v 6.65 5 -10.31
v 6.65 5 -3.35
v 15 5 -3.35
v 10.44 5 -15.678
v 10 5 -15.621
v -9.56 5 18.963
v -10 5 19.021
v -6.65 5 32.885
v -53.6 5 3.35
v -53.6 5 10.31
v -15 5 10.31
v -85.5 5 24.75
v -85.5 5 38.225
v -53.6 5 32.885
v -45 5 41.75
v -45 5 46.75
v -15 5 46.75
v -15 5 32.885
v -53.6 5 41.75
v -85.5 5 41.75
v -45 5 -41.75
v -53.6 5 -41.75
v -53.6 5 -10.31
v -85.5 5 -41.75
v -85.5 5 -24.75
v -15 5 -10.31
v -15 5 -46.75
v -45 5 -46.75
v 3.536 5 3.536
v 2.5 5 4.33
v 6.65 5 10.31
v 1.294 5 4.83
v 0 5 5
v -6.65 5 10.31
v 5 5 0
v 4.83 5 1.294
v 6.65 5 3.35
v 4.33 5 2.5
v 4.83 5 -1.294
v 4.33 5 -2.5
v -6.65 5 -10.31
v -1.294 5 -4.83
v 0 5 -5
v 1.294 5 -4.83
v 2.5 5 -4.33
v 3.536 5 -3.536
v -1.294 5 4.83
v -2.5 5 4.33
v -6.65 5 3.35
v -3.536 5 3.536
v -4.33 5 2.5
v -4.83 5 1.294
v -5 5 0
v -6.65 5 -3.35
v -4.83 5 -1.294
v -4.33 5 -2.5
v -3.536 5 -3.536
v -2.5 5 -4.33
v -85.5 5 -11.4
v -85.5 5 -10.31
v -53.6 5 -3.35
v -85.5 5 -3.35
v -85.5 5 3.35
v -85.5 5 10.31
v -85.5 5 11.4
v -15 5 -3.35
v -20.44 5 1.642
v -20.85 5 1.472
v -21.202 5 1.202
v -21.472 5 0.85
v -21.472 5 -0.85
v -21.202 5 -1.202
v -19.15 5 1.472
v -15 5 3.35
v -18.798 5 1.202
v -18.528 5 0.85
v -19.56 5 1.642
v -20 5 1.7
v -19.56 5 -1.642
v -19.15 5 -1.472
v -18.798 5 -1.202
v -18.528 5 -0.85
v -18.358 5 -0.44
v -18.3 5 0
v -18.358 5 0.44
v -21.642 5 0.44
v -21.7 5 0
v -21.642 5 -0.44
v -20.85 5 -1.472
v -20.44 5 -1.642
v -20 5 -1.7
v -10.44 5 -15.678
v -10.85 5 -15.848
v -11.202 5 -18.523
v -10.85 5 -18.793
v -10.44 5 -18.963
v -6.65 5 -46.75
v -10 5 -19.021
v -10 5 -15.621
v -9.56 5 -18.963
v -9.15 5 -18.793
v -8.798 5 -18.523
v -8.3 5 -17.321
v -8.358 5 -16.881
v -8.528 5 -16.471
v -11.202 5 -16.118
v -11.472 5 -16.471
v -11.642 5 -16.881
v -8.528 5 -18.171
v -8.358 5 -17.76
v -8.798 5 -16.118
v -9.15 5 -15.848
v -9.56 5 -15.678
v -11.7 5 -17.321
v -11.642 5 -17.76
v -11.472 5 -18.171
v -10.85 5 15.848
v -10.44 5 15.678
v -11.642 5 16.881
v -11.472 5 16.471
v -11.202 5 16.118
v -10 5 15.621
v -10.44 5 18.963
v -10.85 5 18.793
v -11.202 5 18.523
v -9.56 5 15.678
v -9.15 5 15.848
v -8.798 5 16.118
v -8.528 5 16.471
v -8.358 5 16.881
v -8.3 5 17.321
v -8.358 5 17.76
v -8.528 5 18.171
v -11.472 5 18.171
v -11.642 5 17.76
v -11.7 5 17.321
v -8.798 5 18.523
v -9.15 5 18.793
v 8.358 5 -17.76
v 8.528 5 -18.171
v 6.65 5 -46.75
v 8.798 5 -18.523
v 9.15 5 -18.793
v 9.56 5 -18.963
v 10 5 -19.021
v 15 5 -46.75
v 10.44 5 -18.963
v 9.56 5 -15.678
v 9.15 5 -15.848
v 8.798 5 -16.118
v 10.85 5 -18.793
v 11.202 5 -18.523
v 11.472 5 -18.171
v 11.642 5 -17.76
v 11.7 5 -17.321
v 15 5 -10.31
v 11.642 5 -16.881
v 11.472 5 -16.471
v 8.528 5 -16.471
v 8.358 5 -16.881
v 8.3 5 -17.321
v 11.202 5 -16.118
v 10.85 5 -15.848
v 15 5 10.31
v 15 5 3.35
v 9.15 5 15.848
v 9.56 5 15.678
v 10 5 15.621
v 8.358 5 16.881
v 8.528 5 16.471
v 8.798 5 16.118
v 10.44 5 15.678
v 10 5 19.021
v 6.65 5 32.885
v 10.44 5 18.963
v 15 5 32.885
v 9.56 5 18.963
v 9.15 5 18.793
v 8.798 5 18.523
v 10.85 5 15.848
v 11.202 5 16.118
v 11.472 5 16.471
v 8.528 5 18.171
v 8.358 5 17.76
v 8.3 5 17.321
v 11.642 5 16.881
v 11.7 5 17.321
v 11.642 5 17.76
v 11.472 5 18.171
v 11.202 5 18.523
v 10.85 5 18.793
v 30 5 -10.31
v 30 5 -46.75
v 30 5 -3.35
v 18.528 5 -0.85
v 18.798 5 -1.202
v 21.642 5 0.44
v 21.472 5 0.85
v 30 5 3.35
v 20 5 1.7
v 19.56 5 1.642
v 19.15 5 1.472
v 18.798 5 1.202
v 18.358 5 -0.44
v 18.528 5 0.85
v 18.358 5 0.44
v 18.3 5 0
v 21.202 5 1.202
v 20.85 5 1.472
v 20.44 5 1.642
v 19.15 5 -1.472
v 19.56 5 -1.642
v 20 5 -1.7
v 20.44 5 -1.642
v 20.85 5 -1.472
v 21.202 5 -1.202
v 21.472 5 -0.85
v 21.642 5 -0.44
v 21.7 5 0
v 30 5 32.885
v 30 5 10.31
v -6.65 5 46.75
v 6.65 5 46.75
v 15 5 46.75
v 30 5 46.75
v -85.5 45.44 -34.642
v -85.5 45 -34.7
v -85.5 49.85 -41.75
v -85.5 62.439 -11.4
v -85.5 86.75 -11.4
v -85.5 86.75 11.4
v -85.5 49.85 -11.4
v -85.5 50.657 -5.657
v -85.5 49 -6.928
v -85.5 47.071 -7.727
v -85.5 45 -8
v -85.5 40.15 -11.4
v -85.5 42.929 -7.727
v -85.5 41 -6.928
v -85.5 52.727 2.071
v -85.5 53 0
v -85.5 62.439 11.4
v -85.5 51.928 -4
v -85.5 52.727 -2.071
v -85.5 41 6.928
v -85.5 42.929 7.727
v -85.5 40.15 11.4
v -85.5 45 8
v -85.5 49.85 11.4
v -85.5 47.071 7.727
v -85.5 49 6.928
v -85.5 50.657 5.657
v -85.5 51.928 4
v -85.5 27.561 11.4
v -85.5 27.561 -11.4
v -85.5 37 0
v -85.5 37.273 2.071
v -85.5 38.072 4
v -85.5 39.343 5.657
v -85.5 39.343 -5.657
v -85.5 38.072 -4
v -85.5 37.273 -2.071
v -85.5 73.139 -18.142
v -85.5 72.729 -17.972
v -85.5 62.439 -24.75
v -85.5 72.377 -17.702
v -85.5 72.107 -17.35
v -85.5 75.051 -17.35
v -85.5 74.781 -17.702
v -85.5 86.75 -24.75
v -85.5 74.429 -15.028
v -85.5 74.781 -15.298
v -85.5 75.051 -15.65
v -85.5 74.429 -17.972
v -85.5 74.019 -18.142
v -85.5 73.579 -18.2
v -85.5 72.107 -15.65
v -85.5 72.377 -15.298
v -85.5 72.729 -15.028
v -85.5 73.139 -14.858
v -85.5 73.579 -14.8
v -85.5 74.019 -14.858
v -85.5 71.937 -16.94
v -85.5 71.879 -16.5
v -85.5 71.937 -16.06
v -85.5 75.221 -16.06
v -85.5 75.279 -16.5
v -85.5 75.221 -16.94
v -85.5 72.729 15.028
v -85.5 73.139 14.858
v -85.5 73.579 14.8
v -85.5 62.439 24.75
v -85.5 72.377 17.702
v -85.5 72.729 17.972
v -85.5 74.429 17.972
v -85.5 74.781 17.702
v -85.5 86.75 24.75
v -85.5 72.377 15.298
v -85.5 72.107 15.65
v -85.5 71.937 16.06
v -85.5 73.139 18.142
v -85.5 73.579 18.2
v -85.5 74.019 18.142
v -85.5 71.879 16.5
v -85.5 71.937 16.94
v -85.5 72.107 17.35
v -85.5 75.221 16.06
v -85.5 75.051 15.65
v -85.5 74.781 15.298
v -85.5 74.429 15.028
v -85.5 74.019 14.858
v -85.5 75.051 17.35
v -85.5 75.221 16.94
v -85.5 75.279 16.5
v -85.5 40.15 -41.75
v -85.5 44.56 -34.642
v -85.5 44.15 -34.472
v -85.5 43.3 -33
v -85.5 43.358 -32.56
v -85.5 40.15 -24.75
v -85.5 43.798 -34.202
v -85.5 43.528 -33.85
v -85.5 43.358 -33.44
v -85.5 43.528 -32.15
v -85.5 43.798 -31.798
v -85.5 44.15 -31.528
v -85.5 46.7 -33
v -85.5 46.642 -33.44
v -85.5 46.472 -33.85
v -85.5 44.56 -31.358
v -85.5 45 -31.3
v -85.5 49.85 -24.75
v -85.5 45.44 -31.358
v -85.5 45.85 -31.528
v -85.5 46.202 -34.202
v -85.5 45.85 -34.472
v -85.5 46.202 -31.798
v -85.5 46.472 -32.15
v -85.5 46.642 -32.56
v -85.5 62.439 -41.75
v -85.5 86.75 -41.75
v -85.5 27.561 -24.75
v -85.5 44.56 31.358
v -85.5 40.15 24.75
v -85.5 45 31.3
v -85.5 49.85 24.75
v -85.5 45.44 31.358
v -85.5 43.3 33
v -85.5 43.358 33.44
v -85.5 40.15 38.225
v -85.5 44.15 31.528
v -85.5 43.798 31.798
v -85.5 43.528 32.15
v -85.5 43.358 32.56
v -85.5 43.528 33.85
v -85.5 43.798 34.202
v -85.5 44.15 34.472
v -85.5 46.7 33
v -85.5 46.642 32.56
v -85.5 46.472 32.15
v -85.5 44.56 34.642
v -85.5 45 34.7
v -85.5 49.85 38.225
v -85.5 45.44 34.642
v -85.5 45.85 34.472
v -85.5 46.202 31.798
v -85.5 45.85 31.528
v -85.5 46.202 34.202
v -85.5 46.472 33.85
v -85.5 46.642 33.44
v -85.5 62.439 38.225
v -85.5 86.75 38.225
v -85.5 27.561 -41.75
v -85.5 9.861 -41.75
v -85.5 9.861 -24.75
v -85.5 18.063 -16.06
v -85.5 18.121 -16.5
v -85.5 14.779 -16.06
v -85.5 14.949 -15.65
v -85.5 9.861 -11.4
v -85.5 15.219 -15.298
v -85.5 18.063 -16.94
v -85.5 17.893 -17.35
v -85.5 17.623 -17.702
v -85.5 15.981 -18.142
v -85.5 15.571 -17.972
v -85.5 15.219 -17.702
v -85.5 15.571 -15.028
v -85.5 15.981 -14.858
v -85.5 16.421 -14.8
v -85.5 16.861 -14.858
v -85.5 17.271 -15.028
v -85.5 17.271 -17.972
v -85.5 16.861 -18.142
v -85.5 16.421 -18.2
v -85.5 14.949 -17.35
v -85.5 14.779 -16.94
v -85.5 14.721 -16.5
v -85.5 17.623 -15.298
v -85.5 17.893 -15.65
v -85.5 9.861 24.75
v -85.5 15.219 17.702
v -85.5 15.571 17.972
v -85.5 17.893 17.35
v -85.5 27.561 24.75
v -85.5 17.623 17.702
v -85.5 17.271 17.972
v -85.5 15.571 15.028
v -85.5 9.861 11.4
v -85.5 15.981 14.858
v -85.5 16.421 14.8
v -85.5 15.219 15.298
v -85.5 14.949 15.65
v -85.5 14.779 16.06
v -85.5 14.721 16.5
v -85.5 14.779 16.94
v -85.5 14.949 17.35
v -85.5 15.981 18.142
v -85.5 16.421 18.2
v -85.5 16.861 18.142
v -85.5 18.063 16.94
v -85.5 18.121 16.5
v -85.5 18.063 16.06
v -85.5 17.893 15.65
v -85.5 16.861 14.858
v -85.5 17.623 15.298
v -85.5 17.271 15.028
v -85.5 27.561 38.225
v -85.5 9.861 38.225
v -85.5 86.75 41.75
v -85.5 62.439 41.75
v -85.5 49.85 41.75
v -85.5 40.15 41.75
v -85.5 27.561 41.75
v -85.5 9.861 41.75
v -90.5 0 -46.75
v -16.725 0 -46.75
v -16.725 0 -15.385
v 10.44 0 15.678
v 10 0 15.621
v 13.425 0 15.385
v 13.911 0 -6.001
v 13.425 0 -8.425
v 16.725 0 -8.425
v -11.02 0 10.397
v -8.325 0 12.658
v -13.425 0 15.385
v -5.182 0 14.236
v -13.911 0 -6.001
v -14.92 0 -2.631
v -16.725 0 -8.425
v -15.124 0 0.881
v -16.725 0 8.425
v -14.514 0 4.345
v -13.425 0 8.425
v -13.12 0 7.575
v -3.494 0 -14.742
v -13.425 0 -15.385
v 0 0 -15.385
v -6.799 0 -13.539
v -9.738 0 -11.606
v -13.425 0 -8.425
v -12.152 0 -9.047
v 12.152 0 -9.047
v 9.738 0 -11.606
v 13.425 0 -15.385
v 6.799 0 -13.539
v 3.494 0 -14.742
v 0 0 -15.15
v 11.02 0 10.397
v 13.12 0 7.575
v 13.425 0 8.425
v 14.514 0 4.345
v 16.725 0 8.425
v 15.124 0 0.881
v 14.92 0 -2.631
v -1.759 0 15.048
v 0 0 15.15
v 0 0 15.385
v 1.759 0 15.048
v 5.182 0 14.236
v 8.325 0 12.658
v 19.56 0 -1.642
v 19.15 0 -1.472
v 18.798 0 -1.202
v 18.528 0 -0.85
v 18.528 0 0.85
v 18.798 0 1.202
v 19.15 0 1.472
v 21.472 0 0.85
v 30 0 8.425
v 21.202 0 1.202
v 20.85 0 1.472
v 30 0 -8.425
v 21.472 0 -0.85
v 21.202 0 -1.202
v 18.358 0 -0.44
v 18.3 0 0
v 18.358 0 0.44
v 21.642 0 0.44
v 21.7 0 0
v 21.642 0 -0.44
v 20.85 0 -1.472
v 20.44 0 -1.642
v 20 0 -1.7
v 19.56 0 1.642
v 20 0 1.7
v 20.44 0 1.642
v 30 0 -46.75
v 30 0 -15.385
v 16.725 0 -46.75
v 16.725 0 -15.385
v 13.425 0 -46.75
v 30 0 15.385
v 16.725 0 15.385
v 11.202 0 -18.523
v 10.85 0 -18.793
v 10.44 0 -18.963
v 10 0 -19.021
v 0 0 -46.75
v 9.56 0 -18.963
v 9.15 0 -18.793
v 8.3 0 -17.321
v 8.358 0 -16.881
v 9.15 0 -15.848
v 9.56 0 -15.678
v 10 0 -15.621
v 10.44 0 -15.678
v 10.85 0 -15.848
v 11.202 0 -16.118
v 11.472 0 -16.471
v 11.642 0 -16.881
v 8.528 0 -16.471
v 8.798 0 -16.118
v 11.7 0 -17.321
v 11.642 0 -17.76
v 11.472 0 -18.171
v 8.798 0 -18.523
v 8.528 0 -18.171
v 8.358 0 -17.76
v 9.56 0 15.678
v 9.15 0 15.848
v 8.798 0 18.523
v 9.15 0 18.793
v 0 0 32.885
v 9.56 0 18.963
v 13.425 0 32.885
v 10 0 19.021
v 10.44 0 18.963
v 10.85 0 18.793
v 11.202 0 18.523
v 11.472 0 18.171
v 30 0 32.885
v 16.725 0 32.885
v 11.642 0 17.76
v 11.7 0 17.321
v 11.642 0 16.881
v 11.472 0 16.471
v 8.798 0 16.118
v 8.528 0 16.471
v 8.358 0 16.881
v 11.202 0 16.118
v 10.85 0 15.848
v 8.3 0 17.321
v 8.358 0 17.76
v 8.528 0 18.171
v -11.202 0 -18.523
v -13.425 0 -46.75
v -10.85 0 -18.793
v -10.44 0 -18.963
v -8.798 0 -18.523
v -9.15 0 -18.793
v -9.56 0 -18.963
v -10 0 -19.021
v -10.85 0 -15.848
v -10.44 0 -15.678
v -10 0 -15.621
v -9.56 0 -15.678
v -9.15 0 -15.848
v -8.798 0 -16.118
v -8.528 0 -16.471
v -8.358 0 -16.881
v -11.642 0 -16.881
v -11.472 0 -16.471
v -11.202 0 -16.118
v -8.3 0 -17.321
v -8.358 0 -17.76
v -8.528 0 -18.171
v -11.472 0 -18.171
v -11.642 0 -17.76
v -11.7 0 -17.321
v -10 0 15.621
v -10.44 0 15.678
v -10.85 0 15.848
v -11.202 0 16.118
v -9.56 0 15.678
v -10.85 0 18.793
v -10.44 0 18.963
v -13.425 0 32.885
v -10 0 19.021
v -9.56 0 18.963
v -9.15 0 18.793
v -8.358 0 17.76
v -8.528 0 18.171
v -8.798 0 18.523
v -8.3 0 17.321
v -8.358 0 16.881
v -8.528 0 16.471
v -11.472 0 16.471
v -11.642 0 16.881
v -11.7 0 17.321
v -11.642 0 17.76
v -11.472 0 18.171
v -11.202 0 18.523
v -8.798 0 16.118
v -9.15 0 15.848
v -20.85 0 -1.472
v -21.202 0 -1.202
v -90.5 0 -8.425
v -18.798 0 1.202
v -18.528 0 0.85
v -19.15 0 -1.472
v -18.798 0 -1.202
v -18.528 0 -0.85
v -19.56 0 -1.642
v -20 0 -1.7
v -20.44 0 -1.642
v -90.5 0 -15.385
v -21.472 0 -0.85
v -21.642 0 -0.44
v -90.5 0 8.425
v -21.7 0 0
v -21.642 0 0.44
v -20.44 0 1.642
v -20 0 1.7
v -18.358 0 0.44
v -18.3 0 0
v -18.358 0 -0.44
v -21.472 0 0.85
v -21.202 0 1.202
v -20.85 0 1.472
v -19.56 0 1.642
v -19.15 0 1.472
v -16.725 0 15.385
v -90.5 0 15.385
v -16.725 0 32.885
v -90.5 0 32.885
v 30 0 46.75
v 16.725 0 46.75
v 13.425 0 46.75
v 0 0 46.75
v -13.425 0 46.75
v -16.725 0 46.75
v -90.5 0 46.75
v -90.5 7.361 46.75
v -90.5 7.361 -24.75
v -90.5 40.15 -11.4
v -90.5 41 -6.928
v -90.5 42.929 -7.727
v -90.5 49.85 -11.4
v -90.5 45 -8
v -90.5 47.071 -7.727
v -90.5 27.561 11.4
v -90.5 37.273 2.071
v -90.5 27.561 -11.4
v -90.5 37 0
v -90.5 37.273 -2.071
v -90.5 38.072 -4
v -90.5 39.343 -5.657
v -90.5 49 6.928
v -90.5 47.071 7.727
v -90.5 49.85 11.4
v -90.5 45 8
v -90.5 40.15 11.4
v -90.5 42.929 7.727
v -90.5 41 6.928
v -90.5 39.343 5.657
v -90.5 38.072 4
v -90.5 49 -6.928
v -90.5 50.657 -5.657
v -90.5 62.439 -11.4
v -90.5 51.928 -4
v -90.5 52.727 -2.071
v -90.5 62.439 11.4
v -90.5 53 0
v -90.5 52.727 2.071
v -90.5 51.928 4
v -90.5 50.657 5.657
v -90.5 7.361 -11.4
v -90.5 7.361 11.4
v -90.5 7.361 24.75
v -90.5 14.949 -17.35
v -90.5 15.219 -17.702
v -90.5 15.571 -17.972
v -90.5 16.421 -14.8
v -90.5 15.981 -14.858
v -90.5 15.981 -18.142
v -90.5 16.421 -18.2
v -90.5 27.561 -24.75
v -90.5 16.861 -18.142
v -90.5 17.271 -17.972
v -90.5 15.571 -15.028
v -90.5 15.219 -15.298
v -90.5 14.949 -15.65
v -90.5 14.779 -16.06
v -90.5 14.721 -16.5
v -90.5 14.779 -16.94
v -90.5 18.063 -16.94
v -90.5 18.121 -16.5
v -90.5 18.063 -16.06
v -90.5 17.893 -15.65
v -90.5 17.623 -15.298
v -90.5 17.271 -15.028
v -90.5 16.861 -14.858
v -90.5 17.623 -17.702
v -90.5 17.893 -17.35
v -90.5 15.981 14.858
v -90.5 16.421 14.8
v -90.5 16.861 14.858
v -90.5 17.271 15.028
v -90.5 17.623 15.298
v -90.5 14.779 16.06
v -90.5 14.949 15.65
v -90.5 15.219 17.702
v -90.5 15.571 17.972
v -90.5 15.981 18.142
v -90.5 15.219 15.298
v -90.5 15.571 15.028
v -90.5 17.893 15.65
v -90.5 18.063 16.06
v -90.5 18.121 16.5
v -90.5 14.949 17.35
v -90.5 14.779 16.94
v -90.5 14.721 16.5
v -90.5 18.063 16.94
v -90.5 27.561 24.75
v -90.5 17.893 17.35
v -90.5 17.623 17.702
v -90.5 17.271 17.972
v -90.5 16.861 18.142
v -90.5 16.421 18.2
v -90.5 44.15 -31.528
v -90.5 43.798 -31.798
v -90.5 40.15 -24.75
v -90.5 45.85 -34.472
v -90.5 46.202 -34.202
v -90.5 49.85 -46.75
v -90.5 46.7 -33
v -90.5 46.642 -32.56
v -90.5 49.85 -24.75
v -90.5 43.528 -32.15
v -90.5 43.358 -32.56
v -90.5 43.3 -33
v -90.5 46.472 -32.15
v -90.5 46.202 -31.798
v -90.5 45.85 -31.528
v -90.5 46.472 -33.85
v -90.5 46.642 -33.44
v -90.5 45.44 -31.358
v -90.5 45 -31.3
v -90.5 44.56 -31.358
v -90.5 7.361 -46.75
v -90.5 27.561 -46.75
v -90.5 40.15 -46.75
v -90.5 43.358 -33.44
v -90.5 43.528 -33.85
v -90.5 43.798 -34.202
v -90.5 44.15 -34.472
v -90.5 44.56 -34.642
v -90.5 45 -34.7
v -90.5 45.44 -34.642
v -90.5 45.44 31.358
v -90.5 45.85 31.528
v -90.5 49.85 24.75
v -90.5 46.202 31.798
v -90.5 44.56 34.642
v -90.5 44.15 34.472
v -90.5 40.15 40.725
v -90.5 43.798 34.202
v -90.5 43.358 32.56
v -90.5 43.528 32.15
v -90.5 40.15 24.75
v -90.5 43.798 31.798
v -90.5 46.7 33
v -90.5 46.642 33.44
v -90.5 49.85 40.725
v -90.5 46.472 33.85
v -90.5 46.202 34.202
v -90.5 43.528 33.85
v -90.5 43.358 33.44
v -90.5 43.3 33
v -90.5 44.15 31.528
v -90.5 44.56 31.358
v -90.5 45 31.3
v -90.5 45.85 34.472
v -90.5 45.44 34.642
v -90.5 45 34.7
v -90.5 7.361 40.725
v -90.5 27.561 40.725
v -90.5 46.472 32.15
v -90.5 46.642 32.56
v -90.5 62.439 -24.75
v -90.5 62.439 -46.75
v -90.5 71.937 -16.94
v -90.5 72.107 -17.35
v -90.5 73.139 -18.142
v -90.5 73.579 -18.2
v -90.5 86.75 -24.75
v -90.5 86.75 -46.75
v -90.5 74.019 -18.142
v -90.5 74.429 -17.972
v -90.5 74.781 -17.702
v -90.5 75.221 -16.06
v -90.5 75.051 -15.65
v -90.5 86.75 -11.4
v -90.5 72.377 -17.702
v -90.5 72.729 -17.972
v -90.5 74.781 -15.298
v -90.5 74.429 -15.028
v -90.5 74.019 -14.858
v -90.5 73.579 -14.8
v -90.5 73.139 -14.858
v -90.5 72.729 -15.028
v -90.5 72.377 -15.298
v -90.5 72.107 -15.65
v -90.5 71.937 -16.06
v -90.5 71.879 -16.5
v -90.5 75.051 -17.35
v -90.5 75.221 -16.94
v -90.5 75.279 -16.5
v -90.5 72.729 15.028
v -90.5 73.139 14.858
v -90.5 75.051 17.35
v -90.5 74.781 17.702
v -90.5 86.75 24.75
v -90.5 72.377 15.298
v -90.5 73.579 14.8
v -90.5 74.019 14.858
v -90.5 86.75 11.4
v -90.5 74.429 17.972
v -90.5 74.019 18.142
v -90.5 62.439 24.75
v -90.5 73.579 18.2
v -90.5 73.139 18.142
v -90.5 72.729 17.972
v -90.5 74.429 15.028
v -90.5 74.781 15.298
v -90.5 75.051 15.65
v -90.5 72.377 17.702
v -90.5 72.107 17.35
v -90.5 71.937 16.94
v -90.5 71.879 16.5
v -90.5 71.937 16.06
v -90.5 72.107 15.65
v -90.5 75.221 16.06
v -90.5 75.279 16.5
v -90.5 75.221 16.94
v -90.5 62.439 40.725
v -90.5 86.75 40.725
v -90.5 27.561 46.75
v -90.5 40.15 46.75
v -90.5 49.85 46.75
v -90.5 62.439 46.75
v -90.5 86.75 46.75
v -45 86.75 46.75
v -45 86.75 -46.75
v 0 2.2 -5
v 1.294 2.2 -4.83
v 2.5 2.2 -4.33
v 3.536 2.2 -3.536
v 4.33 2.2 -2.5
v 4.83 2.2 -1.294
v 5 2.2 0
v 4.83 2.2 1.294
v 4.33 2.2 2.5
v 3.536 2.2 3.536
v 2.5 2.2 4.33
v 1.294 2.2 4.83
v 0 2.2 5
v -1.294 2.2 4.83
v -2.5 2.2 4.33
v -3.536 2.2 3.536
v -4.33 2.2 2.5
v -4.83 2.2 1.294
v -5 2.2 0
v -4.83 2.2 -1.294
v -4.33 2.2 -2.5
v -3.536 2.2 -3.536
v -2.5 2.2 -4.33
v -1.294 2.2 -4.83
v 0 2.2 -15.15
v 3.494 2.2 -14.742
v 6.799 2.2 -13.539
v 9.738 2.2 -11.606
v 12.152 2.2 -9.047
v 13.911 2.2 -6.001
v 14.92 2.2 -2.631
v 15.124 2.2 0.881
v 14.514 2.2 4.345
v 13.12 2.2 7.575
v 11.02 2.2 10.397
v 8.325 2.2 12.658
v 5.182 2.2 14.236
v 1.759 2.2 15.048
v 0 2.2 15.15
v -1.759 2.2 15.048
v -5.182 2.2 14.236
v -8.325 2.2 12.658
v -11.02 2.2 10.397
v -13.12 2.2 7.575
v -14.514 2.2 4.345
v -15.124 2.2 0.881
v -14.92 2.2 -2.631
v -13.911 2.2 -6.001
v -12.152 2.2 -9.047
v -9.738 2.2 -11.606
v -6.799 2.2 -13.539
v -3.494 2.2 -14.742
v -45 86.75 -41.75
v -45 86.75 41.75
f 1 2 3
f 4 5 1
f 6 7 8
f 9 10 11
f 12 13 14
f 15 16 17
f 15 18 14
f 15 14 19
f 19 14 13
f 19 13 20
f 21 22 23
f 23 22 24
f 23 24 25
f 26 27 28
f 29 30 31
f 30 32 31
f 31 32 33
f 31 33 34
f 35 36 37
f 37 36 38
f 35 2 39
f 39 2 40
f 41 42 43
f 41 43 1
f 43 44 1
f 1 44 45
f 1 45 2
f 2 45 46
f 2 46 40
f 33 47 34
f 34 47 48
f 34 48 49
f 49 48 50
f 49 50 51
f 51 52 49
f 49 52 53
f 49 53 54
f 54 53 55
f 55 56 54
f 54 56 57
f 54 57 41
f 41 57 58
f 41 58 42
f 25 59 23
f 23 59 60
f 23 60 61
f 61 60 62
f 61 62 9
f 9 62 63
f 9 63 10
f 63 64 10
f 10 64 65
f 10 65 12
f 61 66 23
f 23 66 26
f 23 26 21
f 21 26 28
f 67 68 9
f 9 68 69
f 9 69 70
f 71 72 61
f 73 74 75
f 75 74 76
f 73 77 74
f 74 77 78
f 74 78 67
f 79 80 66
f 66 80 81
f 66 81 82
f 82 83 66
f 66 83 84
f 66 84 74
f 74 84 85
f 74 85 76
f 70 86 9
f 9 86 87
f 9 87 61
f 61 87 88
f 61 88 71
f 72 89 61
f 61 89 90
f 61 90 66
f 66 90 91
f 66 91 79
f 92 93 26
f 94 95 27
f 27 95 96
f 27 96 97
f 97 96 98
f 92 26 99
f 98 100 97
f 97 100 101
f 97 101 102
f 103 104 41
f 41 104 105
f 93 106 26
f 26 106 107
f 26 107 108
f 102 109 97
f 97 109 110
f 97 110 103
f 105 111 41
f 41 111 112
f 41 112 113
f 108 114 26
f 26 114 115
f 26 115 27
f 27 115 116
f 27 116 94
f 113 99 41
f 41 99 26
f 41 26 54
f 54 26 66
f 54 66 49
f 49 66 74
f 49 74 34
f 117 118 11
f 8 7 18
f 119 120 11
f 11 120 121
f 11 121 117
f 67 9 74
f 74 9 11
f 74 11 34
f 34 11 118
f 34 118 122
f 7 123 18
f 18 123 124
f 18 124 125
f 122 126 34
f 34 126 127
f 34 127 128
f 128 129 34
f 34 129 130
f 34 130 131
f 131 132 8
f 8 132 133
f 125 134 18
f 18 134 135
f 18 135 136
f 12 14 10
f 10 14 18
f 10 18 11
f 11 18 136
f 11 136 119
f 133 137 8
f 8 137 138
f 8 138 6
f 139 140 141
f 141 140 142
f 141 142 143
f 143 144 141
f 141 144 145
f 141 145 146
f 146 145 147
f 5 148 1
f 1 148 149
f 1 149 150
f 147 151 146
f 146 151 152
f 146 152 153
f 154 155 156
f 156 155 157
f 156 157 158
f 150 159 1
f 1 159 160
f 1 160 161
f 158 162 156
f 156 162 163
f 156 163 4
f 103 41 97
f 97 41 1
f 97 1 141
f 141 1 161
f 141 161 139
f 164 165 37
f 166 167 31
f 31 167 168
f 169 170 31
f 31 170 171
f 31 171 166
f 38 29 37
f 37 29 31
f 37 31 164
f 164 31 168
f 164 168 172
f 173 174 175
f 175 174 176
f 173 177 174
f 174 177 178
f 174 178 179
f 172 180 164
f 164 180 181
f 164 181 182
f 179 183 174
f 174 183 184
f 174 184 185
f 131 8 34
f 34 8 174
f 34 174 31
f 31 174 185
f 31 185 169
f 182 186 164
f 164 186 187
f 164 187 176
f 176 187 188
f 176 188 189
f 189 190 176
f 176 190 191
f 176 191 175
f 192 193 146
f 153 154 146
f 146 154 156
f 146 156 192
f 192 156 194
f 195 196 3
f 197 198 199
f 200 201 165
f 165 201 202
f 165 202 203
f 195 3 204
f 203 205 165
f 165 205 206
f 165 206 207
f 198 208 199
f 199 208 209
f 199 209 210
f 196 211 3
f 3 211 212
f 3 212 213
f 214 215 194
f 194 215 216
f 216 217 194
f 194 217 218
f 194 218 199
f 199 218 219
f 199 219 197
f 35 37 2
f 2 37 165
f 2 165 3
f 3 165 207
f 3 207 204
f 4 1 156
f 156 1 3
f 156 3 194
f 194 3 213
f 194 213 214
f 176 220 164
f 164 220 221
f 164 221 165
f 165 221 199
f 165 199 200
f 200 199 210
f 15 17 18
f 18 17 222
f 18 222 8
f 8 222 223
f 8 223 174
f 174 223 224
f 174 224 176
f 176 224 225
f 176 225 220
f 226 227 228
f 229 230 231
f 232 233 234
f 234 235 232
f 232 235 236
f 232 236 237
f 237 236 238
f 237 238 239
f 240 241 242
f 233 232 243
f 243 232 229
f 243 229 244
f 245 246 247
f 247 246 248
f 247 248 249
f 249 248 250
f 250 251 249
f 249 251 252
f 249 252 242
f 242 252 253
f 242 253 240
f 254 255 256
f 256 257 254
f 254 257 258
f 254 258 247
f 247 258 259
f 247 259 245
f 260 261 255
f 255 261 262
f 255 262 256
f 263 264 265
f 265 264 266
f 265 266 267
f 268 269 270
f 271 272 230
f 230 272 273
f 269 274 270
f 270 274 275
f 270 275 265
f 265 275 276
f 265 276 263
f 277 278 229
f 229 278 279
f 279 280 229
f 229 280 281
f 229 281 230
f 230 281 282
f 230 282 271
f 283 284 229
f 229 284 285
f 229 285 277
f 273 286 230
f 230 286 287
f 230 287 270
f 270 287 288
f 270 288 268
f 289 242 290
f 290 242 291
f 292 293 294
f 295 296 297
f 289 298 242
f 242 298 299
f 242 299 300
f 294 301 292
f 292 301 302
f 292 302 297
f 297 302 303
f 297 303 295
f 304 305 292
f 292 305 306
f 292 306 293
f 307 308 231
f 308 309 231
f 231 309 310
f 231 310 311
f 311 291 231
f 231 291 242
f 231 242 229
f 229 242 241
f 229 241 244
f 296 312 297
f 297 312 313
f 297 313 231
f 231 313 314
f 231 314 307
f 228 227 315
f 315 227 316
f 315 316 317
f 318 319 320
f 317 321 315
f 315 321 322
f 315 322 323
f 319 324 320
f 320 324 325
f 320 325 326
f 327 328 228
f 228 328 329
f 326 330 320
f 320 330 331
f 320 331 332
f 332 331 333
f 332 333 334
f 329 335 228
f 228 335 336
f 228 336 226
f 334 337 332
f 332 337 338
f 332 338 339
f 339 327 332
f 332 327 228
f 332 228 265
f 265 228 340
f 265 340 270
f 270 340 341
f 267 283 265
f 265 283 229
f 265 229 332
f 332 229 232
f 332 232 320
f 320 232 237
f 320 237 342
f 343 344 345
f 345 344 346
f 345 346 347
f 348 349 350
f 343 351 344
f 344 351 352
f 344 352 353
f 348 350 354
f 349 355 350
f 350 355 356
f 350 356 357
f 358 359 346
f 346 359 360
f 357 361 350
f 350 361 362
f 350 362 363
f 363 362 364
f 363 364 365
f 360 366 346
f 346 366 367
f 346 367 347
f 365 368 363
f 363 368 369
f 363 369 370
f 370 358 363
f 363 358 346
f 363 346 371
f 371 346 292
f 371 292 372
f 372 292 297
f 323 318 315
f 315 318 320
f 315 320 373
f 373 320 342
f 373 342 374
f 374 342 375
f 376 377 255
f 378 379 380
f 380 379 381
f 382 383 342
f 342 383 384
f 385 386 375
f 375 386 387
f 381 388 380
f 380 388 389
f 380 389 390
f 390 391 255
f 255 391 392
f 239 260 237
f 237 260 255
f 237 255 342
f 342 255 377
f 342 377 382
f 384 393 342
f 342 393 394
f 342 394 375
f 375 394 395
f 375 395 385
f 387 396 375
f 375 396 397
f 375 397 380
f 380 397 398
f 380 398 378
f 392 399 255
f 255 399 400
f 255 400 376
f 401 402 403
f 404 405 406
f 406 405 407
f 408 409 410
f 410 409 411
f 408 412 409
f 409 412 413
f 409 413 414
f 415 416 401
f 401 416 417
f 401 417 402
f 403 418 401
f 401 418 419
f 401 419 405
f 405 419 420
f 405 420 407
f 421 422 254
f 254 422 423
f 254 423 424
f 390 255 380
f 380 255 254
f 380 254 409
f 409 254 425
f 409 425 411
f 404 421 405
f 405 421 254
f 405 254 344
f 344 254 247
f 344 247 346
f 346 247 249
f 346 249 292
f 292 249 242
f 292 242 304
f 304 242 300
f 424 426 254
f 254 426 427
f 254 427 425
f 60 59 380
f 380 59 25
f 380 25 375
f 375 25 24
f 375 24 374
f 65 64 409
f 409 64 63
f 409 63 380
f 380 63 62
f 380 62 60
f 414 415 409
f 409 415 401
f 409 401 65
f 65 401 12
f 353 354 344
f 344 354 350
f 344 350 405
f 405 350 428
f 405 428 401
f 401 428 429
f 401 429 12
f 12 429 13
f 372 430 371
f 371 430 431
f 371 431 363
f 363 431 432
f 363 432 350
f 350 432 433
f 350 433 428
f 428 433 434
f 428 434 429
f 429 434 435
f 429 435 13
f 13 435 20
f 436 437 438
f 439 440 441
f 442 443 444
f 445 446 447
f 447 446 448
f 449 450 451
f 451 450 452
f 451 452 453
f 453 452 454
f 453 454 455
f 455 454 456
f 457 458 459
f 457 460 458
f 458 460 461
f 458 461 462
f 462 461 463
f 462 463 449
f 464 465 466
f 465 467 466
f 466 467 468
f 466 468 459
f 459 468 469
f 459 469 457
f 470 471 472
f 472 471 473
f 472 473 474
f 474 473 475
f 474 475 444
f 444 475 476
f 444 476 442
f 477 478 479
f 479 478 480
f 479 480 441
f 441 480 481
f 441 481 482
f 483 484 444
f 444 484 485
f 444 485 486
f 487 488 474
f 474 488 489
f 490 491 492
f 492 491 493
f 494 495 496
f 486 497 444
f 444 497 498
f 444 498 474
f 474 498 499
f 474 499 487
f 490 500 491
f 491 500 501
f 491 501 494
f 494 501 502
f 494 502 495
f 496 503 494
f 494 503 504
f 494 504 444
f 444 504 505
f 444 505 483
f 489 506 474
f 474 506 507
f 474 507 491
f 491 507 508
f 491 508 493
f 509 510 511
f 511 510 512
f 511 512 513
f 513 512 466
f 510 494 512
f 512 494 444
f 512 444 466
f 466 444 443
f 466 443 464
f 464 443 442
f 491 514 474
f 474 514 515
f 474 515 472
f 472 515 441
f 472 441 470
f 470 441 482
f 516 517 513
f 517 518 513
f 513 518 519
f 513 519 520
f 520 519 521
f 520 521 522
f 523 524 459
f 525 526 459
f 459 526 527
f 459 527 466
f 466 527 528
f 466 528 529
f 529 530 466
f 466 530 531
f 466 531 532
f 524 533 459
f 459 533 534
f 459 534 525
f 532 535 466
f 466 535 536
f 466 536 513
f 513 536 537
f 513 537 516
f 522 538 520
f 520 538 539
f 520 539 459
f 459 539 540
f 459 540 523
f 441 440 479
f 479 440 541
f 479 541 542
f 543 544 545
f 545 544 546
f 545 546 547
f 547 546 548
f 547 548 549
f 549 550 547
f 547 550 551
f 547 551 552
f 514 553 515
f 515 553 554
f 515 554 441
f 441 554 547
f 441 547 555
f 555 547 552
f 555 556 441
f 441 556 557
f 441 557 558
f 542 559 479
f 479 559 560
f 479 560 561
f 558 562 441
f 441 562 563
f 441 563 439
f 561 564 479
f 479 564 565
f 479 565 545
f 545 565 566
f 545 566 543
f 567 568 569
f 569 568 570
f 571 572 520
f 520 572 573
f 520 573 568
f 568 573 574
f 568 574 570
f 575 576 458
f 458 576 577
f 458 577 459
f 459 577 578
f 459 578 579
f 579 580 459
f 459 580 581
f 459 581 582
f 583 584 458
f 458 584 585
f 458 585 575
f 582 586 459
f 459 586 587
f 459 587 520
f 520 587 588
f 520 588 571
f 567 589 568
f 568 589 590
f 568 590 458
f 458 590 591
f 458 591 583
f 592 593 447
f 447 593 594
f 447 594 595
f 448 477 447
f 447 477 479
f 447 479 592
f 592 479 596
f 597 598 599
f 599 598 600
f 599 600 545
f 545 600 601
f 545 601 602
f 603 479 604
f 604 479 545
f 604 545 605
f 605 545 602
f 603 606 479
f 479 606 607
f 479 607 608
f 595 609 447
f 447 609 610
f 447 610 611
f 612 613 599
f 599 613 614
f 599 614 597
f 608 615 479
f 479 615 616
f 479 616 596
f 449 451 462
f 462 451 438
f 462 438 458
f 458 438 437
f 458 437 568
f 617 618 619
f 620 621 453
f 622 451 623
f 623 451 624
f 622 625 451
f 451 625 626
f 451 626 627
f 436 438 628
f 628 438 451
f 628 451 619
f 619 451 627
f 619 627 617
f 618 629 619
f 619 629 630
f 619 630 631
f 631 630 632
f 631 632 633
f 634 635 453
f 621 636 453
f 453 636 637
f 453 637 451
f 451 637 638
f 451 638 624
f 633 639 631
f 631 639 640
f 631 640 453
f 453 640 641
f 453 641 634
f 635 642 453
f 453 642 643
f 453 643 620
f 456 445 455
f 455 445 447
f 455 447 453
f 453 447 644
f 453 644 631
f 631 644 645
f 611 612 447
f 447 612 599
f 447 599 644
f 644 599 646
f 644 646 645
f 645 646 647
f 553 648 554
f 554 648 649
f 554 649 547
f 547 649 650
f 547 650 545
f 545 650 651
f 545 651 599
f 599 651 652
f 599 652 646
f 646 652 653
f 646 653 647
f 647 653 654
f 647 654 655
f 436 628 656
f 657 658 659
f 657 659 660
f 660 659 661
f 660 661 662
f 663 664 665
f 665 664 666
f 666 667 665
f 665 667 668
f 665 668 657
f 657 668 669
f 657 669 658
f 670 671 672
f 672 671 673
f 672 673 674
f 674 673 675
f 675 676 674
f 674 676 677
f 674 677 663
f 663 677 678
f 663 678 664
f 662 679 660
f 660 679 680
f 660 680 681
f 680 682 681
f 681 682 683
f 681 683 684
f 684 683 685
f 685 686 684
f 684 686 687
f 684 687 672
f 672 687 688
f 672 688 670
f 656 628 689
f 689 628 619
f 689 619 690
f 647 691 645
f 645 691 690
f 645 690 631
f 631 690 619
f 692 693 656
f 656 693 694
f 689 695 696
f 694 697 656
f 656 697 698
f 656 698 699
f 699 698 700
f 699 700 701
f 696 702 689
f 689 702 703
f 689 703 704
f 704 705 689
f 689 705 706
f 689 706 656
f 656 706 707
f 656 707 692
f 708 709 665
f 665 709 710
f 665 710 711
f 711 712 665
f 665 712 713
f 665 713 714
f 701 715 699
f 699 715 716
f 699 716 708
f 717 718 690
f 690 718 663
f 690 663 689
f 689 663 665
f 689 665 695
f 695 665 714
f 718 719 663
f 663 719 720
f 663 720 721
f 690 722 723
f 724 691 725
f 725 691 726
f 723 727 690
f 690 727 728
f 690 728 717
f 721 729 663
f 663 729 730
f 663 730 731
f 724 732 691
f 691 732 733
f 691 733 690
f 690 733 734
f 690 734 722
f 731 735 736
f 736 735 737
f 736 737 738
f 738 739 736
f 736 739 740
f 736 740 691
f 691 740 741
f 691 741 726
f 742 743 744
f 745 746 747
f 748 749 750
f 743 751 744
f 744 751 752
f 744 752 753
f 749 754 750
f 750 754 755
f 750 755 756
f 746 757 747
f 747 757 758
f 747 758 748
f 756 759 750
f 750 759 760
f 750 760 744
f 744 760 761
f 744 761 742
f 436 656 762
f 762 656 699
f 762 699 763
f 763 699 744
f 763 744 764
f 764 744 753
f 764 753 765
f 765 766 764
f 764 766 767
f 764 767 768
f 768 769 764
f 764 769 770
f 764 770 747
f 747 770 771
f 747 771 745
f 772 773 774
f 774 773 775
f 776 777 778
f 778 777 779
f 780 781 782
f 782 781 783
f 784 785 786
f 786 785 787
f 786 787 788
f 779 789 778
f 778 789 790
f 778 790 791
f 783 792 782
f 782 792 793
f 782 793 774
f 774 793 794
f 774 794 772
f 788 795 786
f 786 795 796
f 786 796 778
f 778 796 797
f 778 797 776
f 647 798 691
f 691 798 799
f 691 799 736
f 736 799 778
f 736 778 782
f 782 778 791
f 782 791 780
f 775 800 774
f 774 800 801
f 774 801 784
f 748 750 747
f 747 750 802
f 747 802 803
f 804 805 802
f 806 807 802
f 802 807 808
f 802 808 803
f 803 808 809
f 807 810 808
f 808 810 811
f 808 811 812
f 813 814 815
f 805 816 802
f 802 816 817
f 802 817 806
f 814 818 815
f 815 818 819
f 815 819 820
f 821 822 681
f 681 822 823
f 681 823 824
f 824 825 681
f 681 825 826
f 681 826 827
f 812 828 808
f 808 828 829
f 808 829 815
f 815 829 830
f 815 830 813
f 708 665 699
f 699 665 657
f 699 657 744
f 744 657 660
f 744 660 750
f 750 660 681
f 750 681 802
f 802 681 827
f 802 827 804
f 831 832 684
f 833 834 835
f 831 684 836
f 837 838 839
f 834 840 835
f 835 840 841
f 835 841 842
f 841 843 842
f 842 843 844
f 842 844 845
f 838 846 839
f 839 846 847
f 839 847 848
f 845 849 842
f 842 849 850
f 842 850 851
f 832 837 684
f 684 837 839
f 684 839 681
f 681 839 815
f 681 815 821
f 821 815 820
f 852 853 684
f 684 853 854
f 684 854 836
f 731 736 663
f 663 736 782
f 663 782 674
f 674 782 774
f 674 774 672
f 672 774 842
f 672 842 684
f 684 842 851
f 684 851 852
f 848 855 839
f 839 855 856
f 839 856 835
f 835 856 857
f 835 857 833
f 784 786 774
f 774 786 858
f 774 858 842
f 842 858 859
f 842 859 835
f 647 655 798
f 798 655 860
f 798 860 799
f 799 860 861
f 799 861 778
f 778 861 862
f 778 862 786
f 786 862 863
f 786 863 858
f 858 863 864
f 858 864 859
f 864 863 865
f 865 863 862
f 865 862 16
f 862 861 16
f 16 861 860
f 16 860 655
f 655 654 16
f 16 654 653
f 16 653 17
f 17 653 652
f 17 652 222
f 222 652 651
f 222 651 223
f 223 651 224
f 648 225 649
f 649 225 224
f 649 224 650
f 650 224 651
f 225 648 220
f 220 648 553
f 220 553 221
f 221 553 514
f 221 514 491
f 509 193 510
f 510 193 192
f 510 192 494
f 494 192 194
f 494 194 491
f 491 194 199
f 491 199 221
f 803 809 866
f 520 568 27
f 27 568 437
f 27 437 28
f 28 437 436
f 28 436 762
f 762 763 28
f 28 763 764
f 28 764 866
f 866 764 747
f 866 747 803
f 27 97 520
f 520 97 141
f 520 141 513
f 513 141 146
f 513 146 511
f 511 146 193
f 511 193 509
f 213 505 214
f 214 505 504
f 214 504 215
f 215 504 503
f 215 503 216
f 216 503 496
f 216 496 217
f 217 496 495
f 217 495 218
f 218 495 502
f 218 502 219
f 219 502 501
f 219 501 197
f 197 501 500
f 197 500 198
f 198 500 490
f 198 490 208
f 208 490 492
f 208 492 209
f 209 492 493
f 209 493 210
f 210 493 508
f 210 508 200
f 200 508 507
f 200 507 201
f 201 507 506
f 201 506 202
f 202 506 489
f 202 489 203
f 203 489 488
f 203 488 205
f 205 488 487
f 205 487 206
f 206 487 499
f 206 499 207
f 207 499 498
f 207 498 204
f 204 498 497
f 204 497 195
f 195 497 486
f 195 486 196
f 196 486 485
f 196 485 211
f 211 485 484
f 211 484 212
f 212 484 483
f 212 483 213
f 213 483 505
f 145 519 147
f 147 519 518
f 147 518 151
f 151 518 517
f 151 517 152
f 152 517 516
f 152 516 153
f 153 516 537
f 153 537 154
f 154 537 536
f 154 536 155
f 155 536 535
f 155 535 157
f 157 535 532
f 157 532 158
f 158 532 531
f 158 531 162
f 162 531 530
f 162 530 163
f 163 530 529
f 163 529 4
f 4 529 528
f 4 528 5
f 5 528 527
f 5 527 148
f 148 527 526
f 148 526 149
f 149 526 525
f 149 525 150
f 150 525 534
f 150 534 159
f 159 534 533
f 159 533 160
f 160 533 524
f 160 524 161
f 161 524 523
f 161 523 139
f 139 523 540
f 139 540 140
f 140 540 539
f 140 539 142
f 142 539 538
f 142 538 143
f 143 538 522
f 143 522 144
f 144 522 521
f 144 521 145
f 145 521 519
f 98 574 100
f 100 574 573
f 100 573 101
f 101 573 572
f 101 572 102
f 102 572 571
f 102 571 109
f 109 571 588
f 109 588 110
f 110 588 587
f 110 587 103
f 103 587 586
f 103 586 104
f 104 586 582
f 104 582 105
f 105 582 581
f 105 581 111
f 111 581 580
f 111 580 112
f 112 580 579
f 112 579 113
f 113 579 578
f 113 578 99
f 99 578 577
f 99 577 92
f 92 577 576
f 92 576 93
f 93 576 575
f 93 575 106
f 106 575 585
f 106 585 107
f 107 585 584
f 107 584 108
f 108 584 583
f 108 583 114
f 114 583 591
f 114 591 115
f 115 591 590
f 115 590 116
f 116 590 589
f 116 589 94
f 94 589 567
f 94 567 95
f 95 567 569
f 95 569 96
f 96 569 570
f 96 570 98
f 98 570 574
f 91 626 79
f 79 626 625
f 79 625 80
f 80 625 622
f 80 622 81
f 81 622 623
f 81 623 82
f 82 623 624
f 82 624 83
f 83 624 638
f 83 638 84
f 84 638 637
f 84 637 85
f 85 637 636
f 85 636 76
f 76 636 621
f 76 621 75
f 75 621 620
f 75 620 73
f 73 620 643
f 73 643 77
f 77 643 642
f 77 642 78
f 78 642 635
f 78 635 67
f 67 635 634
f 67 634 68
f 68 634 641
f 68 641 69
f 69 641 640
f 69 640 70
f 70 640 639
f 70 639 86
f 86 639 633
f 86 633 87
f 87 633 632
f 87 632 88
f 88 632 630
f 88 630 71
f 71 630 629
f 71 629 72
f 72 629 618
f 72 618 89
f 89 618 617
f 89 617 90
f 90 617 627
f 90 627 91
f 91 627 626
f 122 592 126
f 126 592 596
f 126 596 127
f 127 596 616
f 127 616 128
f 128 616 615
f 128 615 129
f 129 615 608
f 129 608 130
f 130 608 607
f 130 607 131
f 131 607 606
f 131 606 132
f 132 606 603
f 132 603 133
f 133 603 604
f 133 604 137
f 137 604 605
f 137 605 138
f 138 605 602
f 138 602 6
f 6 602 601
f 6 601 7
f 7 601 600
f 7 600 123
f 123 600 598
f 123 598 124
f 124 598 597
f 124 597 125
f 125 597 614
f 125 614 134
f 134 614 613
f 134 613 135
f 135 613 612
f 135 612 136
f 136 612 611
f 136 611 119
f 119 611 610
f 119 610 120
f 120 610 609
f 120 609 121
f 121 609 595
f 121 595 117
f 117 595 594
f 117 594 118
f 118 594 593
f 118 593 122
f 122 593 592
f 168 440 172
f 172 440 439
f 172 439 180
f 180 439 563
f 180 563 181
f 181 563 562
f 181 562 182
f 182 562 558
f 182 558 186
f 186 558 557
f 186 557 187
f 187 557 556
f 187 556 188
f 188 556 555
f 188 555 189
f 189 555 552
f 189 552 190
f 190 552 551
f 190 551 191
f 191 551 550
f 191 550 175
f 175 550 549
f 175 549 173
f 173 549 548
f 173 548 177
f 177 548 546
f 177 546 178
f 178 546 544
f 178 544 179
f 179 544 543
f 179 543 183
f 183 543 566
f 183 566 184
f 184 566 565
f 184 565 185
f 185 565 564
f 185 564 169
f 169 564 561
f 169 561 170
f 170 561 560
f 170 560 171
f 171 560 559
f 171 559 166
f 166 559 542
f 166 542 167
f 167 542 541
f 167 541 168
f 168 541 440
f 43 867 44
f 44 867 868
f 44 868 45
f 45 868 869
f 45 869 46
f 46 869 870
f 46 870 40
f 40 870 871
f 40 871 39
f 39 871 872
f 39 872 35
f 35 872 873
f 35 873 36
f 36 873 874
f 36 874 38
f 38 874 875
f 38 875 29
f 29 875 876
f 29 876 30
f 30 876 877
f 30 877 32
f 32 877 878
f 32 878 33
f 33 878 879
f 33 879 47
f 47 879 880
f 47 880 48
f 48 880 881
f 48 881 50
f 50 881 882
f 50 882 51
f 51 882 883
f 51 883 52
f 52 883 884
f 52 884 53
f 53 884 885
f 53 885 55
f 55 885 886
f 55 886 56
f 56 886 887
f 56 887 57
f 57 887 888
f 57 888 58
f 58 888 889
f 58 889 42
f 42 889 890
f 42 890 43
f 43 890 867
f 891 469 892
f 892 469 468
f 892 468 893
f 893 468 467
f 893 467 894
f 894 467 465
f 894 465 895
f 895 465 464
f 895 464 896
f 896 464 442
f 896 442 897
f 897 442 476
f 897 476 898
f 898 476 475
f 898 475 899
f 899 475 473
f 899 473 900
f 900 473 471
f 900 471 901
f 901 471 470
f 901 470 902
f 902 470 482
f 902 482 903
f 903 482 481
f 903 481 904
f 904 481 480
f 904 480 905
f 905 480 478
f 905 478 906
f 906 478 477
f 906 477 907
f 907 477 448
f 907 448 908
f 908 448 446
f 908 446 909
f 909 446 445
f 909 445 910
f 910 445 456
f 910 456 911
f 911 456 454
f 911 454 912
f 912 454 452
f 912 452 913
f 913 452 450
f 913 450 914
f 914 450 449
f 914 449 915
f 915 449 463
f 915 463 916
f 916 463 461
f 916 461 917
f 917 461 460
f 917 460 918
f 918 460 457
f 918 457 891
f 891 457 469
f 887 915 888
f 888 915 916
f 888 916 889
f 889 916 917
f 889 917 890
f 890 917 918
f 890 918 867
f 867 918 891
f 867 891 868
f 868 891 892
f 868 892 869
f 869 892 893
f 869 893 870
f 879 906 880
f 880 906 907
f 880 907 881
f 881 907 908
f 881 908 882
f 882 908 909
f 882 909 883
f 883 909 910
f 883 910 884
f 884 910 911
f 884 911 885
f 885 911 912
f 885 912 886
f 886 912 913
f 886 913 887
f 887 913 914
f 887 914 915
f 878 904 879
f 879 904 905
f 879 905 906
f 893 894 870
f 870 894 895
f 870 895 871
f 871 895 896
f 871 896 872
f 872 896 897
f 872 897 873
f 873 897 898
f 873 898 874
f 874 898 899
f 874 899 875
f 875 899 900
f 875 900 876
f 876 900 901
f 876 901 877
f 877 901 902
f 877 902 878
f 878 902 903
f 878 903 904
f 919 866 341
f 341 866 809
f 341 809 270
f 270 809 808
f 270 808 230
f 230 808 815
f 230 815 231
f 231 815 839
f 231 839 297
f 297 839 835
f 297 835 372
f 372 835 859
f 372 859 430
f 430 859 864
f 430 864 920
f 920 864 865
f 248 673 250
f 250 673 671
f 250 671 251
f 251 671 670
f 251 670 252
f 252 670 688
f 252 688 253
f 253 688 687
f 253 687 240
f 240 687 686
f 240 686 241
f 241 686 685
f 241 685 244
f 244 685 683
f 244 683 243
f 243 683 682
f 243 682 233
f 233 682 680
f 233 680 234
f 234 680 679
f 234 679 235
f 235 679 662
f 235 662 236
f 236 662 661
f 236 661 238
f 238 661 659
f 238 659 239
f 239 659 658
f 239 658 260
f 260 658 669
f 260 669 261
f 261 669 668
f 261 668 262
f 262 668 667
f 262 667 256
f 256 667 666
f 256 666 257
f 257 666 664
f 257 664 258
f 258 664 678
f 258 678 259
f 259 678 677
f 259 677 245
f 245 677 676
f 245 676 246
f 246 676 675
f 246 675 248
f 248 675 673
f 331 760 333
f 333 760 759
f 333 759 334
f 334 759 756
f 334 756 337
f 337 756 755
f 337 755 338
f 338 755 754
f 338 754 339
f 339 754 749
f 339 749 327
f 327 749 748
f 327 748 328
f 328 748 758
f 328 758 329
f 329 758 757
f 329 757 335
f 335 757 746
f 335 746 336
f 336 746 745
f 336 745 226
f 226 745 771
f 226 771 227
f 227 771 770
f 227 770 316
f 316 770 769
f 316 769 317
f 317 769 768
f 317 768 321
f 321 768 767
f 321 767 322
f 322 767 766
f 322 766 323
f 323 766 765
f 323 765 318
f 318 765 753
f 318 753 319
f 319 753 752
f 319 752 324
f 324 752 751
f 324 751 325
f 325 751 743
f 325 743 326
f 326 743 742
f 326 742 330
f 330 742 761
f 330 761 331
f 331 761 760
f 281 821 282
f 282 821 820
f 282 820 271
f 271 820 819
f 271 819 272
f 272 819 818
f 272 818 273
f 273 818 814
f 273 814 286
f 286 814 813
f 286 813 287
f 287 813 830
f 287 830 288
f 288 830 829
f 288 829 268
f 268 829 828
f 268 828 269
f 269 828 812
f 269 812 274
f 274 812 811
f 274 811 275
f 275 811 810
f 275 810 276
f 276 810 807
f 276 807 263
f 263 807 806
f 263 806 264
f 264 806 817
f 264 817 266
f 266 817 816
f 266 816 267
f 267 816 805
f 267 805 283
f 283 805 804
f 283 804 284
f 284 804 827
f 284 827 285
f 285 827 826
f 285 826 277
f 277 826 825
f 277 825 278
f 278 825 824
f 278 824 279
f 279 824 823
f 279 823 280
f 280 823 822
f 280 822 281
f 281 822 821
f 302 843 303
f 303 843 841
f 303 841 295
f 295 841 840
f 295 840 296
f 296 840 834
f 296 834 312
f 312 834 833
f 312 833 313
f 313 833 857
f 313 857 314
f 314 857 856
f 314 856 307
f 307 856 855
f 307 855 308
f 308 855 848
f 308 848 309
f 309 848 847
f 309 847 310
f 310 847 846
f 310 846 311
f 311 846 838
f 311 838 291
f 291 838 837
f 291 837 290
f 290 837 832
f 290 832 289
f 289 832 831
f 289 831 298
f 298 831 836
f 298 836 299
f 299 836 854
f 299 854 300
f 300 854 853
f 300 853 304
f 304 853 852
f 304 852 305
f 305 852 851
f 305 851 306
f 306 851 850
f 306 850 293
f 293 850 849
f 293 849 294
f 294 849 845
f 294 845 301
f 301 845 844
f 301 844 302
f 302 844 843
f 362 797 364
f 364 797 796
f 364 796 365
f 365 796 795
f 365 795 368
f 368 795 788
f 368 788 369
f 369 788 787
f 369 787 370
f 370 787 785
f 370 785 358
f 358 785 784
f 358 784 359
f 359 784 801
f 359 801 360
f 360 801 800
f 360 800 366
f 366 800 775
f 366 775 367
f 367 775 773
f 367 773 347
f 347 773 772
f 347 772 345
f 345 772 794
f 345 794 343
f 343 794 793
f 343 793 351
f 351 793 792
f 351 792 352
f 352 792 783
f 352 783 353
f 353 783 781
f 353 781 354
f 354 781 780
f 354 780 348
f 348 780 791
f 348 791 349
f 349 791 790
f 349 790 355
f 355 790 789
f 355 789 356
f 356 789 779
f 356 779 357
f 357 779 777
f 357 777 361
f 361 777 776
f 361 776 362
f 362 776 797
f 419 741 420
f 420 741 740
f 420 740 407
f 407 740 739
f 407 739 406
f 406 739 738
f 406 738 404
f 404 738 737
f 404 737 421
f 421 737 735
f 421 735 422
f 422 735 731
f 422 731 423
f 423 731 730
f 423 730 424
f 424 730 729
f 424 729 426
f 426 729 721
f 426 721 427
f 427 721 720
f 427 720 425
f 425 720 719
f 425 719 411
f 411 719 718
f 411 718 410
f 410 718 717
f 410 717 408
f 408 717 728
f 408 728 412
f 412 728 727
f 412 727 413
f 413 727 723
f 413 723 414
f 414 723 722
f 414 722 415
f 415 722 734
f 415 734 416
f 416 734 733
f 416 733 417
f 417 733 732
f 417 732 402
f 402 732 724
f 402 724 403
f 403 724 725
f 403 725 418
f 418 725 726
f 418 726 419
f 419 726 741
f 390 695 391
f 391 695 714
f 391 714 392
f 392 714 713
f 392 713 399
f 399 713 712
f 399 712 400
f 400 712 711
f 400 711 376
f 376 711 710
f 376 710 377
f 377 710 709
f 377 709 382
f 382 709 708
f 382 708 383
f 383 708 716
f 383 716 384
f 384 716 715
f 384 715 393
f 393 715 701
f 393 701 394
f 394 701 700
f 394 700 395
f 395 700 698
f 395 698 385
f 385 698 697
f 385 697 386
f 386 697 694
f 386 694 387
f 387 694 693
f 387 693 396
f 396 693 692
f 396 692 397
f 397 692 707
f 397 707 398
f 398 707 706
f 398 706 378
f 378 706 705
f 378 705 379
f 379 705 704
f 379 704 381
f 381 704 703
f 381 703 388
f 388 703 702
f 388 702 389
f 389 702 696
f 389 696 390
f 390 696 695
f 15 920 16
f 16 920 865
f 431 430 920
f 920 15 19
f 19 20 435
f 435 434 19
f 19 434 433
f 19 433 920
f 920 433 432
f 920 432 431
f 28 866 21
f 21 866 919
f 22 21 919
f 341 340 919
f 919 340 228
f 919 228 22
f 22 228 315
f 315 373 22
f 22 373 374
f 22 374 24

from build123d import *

# Parameters (mm, degrees)
SK_OUTPUT_PLATE_W        = 120.5
SK_OUTPUT_PLATE_H        = 93.5
SK_OUTPUT_PLATE_R        = 1.7
SK_OUTPUT_PLATE_R_2      = 5
OUTPUT_PLATE_DEPTH       = 5
SK_PITCH_PILOT_RECESS_R  = 15.15
PITCH_PILOT_RECESS_DEPTH = 2.2
SK_REAR_PLATE_W          = 93.5
SK_REAR_PLATE_H          = 86.75
SK_REAR_PLATE_R          = 8
SK_REAR_PLATE_R_2        = 1.7
REAR_PLATE_DEPTH         = 5
SK_TOP_PLATE_W           = 45.5
SK_TOP_PLATE_H           = 86.75
TOP_PLATE_DEPTH          = 5
SK_BOTTOM_PLATE_W        = 45.5
SK_BOTTOM_PLATE_H        = 86.75
BOTTOM_PLATE_DEPTH       = 5


with BuildPart() as part:
    # SK_Output_Plate → Output_Plate (new body)
    with BuildSketch(Plane(origin=(0, 0, 0), x_dir=(1, 0, 0), z_dir=(0, 1, 0))):
        with Locations((-30.25, 0)):
            Rectangle(SK_OUTPUT_PLATE_W, SK_OUTPUT_PLATE_H)
        with Locations(Location((20, 0, 0), (0, 0, 270))):
            Circle(SK_OUTPUT_PLATE_R, mode=Mode.SUBTRACT)
        with Locations(Location((10, 17.320508076, 0), (0, 0, 270))):
            Circle(SK_OUTPUT_PLATE_R, mode=Mode.SUBTRACT)
        with Locations(Location((-10, 17.320508076, 0), (0, 0, 270))):
            Circle(SK_OUTPUT_PLATE_R, mode=Mode.SUBTRACT)
        with Locations(Location((-20, 0, 0), (0, 0, 270))):
            Circle(SK_OUTPUT_PLATE_R, mode=Mode.SUBTRACT)
        with Locations(Location((-10, -17.320508076, 0), (0, 0, 270))):
            Circle(SK_OUTPUT_PLATE_R, mode=Mode.SUBTRACT)
        with Locations(Location((10, -17.320508076, 0), (0, 0, 270))):
            Circle(SK_OUTPUT_PLATE_R, mode=Mode.SUBTRACT)
        with Locations(Location((0, 0, 0), (0, 0, 270))):
            Circle(SK_OUTPUT_PLATE_R_2, mode=Mode.SUBTRACT)
    extrude(amount=OUTPUT_PLATE_DEPTH)

    # SK_Pitch_Pilot_Recess → Pitch_Pilot_Recess (cut)
    with BuildSketch(Plane(origin=(0, 0, 0), x_dir=(1, 0, 0), z_dir=(0, 1, 0))):
        with Locations(Location((0, 0, 0), (0, 0, 270))):
            Circle(SK_PITCH_PILOT_RECESS_R)
    extrude(amount=PITCH_PILOT_RECESS_DEPTH, mode=Mode.SUBTRACT)

    # SK_Rear_Plate → Rear_Plate (add)
    with BuildSketch(Plane(origin=(-90.5, 0, 0), x_dir=(0, 0, -1), z_dir=(1, 0, 0))):
        with Locations((0, 43.375)):
            Rectangle(SK_REAR_PLATE_W, SK_REAR_PLATE_H)
        with Locations((0, 45)):
            Circle(SK_REAR_PLATE_R, mode=Mode.SUBTRACT)
        with Locations((33, 45)):
            Circle(SK_REAR_PLATE_R_2, mode=Mode.SUBTRACT)
        with Locations((16.5, 73.578838325)):
            Circle(SK_REAR_PLATE_R_2, mode=Mode.SUBTRACT)
        with Locations((-16.5, 73.578838325)):
            Circle(SK_REAR_PLATE_R_2, mode=Mode.SUBTRACT)
        with Locations((-33, 45)):
            Circle(SK_REAR_PLATE_R_2, mode=Mode.SUBTRACT)
        with Locations((-16.5, 16.421161675)):
            Circle(SK_REAR_PLATE_R_2, mode=Mode.SUBTRACT)
        with Locations((16.5, 16.421161675)):
            Circle(SK_REAR_PLATE_R_2, mode=Mode.SUBTRACT)
    extrude(amount=REAR_PLATE_DEPTH)

    # SK_Top_Plate → Top_Plate (add)
    with BuildSketch(Plane.XY.offset(41.75)):
        with Locations((-67.75, 43.375)):
            Rectangle(SK_TOP_PLATE_W, SK_TOP_PLATE_H)
    extrude(amount=TOP_PLATE_DEPTH)

    # SK_Bottom_Plate → Bottom_Plate (add)
    with BuildSketch(Plane.XY.offset(-46.75)):
        with Locations((-67.75, 43.375)):
            Rectangle(SK_BOTTOM_PLATE_W, SK_BOTTOM_PLATE_H)
    extrude(amount=BOTTOM_PLATE_DEPTH)


solid = part.part
